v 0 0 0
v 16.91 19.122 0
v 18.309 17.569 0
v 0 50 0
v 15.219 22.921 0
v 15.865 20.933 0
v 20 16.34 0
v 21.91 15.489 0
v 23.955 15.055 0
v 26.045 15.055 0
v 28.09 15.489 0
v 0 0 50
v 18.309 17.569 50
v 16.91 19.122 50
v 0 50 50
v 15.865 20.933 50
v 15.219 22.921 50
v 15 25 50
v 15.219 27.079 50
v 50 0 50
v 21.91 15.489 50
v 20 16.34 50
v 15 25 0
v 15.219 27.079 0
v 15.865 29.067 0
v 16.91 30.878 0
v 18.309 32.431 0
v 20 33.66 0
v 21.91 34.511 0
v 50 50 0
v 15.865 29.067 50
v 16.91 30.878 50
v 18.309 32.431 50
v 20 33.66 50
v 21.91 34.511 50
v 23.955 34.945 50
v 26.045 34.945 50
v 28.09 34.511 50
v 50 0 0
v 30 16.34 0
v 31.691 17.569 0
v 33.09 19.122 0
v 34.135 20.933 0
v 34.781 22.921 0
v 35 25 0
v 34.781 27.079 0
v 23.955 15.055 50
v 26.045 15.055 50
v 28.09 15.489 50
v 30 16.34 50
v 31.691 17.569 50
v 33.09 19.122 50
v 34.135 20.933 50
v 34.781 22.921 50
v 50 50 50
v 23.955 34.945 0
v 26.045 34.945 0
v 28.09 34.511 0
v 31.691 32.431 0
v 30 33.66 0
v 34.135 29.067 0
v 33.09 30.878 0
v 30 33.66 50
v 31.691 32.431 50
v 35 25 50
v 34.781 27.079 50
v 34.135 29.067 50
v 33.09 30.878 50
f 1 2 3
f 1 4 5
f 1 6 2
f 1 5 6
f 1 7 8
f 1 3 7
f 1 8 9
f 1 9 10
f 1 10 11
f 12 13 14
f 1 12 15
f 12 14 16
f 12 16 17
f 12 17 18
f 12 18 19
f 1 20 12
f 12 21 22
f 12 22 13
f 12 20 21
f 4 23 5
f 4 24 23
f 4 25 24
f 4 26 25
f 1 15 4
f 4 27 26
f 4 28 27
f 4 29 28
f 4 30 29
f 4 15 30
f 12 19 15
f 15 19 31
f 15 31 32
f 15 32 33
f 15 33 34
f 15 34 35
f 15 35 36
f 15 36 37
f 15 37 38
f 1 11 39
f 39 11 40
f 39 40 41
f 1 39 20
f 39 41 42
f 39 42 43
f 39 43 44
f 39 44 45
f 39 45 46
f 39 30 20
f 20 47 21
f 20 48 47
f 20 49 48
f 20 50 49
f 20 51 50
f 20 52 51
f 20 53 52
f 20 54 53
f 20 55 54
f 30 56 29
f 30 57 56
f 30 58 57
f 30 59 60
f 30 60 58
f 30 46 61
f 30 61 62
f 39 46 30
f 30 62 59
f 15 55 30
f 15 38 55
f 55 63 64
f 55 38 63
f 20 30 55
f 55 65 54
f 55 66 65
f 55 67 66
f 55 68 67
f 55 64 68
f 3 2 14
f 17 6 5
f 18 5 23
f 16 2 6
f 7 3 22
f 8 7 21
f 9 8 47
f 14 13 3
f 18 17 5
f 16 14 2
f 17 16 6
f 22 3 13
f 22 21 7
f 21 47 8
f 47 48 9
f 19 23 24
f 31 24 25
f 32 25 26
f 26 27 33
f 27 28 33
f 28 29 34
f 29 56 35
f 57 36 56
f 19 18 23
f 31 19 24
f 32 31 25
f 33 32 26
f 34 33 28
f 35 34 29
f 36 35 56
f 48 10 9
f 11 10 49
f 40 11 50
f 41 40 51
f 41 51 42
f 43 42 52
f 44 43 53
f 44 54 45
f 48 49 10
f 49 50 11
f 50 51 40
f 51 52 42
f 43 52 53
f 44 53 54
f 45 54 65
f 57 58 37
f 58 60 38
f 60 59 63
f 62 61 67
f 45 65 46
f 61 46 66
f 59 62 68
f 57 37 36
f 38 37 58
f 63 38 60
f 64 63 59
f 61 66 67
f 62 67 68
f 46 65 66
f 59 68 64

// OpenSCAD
difference() {
    cube([50, 50, 50]);
    translate([25, 25, 0]) cylinder(r = 10, h = 50);
}
